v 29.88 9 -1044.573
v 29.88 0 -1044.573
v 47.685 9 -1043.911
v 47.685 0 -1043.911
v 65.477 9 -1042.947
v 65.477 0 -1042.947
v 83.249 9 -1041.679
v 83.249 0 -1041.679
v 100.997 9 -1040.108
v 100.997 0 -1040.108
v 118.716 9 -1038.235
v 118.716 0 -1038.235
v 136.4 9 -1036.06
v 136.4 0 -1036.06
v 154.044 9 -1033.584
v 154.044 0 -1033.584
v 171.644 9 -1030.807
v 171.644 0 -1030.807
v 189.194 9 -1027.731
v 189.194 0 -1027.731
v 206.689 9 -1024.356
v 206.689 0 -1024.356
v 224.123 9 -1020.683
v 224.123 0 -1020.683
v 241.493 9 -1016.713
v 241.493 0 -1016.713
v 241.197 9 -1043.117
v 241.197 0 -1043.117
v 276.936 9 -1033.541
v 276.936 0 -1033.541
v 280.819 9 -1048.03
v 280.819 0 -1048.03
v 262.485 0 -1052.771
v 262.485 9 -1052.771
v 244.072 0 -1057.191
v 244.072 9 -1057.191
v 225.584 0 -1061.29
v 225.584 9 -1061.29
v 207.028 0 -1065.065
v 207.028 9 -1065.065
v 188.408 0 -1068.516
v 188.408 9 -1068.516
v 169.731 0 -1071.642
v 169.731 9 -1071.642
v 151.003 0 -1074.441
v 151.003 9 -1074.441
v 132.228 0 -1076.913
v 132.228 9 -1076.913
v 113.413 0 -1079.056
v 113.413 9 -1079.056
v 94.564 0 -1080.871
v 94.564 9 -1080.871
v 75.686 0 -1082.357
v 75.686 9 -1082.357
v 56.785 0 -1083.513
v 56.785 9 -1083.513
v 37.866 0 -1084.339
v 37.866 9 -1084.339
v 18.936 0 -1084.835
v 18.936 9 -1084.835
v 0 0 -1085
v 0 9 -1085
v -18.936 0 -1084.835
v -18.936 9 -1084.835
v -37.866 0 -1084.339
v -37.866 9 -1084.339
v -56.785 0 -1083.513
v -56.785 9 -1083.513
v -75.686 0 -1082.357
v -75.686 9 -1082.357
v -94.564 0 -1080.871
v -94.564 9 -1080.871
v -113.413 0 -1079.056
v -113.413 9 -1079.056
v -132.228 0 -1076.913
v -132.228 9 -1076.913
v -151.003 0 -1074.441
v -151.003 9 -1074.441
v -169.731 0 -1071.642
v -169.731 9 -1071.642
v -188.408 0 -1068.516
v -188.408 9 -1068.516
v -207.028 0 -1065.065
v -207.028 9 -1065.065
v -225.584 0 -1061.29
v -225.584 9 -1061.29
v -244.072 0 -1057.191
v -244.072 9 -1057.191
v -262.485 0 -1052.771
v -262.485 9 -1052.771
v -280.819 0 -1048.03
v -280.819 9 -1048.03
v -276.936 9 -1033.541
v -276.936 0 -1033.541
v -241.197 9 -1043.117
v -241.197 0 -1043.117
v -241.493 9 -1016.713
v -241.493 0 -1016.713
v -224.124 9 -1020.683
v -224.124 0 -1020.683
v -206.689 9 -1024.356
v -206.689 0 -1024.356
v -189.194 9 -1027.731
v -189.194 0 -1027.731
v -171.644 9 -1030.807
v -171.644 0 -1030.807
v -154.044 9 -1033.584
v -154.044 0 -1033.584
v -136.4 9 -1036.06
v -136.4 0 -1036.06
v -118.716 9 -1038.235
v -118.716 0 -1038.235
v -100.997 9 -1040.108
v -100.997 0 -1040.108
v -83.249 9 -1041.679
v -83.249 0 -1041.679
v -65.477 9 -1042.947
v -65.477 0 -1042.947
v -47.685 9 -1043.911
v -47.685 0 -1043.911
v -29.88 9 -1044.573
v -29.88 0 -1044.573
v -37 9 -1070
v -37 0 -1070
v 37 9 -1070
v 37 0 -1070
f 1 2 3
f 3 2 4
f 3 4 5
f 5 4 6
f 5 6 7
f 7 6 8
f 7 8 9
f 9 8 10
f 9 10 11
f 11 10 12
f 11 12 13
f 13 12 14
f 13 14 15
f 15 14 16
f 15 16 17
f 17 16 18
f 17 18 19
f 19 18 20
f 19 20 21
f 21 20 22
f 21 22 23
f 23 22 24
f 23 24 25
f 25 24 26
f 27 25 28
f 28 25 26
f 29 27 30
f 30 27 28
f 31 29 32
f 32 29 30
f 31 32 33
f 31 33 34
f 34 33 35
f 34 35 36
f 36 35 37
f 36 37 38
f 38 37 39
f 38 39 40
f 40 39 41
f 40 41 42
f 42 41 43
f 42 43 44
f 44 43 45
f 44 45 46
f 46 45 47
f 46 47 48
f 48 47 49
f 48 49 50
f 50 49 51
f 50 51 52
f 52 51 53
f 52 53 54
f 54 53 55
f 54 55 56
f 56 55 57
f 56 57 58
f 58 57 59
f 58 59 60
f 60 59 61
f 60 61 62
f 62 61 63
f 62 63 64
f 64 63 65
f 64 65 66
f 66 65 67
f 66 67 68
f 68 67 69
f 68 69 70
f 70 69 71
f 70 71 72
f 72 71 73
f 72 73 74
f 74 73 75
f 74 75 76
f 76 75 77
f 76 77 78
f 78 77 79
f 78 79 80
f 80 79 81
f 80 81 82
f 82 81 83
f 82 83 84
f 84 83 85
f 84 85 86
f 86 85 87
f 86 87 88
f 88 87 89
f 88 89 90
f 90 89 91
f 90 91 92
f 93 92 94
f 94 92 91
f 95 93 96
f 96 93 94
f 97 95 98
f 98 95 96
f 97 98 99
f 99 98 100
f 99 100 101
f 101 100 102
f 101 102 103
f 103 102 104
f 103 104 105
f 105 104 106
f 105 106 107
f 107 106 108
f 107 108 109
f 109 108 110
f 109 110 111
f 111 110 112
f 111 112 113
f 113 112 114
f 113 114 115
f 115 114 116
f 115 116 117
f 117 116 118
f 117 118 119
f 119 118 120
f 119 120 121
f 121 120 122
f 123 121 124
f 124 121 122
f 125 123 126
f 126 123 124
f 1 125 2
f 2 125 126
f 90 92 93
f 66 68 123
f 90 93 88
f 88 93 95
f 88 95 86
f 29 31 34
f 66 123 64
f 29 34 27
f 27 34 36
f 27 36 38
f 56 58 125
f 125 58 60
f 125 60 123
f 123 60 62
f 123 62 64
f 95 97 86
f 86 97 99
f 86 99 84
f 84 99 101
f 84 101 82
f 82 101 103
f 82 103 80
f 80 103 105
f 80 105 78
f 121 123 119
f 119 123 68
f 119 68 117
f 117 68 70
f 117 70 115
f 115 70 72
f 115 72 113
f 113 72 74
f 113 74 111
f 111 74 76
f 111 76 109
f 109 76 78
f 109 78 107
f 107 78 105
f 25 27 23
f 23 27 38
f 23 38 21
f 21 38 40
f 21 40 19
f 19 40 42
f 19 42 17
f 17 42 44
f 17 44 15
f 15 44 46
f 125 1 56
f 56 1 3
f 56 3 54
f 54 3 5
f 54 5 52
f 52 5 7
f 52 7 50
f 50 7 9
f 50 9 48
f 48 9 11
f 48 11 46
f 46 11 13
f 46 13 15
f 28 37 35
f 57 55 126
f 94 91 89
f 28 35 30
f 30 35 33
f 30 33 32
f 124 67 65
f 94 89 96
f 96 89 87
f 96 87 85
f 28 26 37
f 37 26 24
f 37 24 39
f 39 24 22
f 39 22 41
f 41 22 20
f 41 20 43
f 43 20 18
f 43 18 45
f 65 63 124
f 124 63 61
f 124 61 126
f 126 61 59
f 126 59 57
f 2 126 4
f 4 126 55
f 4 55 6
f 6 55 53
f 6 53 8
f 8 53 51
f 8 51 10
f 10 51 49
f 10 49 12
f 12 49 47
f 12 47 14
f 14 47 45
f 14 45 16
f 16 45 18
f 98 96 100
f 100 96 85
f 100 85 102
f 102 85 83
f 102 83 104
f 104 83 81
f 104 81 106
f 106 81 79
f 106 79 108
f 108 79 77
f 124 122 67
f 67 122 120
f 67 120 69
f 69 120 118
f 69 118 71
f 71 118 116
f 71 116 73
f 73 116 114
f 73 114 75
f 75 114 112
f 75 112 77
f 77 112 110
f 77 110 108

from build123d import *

# Parameters (mm, degrees)
BOSS_EXTRUDE1_DEPTH = 9


with BuildPart() as part:
    # Sketch1 → Boss-Extrude1 (new body)
    with BuildSketch(Plane(origin=(0, 0, 0), x_dir=(1, 0, 0), z_dir=(0, 1, 0))):
        with BuildLine():
            Line((-280.818663936, 1048.029521524), (-276.93637826, 1033.540634129))
            Line((-276.93637826, 1033.540634129), (-241.197122687, 1043.116938798))
            Line((-241.197122687, 1043.116938798), (-241.488127343, 1017.157059825))
            Line((-241.488127343, 1017.157059825), (-241.493100981, 1016.713372676))
            ThreePointArc((-241.493100981, 1016.713372676), (-136.39987087, 1036.059880136), (-29.880361151, 1044.572718396))
            Line((-29.880361151, 1044.572718396), (-30, 1045))
            Line((-30, 1045), (-37, 1070))
            Line((-37, 1070), (37, 1070))
            Line((37, 1070), (30, 1045))
            Line((30, 1045), (29.880361151, 1044.572718396))
            ThreePointArc((29.880361151, 1044.572718396), (136.39987087, 1036.059880136), (241.493100981, 1016.713372676))
            Line((241.493100981, 1016.713372676), (241.488127343, 1017.157059825))
            Line((241.488127343, 1017.157059825), (241.197122687, 1043.116938798))
            Line((241.197122687, 1043.116938798), (276.93637826, 1033.540634129))
            Line((276.93637826, 1033.540634129), (280.818663936, 1048.029521524))
            ThreePointArc((280.818663936, 1048.029521524), (0, 1085), (-280.818663936, 1048.029521524))
        make_face()
    extrude(amount=BOSS_EXTRUDE1_DEPTH)


solid = part.part
